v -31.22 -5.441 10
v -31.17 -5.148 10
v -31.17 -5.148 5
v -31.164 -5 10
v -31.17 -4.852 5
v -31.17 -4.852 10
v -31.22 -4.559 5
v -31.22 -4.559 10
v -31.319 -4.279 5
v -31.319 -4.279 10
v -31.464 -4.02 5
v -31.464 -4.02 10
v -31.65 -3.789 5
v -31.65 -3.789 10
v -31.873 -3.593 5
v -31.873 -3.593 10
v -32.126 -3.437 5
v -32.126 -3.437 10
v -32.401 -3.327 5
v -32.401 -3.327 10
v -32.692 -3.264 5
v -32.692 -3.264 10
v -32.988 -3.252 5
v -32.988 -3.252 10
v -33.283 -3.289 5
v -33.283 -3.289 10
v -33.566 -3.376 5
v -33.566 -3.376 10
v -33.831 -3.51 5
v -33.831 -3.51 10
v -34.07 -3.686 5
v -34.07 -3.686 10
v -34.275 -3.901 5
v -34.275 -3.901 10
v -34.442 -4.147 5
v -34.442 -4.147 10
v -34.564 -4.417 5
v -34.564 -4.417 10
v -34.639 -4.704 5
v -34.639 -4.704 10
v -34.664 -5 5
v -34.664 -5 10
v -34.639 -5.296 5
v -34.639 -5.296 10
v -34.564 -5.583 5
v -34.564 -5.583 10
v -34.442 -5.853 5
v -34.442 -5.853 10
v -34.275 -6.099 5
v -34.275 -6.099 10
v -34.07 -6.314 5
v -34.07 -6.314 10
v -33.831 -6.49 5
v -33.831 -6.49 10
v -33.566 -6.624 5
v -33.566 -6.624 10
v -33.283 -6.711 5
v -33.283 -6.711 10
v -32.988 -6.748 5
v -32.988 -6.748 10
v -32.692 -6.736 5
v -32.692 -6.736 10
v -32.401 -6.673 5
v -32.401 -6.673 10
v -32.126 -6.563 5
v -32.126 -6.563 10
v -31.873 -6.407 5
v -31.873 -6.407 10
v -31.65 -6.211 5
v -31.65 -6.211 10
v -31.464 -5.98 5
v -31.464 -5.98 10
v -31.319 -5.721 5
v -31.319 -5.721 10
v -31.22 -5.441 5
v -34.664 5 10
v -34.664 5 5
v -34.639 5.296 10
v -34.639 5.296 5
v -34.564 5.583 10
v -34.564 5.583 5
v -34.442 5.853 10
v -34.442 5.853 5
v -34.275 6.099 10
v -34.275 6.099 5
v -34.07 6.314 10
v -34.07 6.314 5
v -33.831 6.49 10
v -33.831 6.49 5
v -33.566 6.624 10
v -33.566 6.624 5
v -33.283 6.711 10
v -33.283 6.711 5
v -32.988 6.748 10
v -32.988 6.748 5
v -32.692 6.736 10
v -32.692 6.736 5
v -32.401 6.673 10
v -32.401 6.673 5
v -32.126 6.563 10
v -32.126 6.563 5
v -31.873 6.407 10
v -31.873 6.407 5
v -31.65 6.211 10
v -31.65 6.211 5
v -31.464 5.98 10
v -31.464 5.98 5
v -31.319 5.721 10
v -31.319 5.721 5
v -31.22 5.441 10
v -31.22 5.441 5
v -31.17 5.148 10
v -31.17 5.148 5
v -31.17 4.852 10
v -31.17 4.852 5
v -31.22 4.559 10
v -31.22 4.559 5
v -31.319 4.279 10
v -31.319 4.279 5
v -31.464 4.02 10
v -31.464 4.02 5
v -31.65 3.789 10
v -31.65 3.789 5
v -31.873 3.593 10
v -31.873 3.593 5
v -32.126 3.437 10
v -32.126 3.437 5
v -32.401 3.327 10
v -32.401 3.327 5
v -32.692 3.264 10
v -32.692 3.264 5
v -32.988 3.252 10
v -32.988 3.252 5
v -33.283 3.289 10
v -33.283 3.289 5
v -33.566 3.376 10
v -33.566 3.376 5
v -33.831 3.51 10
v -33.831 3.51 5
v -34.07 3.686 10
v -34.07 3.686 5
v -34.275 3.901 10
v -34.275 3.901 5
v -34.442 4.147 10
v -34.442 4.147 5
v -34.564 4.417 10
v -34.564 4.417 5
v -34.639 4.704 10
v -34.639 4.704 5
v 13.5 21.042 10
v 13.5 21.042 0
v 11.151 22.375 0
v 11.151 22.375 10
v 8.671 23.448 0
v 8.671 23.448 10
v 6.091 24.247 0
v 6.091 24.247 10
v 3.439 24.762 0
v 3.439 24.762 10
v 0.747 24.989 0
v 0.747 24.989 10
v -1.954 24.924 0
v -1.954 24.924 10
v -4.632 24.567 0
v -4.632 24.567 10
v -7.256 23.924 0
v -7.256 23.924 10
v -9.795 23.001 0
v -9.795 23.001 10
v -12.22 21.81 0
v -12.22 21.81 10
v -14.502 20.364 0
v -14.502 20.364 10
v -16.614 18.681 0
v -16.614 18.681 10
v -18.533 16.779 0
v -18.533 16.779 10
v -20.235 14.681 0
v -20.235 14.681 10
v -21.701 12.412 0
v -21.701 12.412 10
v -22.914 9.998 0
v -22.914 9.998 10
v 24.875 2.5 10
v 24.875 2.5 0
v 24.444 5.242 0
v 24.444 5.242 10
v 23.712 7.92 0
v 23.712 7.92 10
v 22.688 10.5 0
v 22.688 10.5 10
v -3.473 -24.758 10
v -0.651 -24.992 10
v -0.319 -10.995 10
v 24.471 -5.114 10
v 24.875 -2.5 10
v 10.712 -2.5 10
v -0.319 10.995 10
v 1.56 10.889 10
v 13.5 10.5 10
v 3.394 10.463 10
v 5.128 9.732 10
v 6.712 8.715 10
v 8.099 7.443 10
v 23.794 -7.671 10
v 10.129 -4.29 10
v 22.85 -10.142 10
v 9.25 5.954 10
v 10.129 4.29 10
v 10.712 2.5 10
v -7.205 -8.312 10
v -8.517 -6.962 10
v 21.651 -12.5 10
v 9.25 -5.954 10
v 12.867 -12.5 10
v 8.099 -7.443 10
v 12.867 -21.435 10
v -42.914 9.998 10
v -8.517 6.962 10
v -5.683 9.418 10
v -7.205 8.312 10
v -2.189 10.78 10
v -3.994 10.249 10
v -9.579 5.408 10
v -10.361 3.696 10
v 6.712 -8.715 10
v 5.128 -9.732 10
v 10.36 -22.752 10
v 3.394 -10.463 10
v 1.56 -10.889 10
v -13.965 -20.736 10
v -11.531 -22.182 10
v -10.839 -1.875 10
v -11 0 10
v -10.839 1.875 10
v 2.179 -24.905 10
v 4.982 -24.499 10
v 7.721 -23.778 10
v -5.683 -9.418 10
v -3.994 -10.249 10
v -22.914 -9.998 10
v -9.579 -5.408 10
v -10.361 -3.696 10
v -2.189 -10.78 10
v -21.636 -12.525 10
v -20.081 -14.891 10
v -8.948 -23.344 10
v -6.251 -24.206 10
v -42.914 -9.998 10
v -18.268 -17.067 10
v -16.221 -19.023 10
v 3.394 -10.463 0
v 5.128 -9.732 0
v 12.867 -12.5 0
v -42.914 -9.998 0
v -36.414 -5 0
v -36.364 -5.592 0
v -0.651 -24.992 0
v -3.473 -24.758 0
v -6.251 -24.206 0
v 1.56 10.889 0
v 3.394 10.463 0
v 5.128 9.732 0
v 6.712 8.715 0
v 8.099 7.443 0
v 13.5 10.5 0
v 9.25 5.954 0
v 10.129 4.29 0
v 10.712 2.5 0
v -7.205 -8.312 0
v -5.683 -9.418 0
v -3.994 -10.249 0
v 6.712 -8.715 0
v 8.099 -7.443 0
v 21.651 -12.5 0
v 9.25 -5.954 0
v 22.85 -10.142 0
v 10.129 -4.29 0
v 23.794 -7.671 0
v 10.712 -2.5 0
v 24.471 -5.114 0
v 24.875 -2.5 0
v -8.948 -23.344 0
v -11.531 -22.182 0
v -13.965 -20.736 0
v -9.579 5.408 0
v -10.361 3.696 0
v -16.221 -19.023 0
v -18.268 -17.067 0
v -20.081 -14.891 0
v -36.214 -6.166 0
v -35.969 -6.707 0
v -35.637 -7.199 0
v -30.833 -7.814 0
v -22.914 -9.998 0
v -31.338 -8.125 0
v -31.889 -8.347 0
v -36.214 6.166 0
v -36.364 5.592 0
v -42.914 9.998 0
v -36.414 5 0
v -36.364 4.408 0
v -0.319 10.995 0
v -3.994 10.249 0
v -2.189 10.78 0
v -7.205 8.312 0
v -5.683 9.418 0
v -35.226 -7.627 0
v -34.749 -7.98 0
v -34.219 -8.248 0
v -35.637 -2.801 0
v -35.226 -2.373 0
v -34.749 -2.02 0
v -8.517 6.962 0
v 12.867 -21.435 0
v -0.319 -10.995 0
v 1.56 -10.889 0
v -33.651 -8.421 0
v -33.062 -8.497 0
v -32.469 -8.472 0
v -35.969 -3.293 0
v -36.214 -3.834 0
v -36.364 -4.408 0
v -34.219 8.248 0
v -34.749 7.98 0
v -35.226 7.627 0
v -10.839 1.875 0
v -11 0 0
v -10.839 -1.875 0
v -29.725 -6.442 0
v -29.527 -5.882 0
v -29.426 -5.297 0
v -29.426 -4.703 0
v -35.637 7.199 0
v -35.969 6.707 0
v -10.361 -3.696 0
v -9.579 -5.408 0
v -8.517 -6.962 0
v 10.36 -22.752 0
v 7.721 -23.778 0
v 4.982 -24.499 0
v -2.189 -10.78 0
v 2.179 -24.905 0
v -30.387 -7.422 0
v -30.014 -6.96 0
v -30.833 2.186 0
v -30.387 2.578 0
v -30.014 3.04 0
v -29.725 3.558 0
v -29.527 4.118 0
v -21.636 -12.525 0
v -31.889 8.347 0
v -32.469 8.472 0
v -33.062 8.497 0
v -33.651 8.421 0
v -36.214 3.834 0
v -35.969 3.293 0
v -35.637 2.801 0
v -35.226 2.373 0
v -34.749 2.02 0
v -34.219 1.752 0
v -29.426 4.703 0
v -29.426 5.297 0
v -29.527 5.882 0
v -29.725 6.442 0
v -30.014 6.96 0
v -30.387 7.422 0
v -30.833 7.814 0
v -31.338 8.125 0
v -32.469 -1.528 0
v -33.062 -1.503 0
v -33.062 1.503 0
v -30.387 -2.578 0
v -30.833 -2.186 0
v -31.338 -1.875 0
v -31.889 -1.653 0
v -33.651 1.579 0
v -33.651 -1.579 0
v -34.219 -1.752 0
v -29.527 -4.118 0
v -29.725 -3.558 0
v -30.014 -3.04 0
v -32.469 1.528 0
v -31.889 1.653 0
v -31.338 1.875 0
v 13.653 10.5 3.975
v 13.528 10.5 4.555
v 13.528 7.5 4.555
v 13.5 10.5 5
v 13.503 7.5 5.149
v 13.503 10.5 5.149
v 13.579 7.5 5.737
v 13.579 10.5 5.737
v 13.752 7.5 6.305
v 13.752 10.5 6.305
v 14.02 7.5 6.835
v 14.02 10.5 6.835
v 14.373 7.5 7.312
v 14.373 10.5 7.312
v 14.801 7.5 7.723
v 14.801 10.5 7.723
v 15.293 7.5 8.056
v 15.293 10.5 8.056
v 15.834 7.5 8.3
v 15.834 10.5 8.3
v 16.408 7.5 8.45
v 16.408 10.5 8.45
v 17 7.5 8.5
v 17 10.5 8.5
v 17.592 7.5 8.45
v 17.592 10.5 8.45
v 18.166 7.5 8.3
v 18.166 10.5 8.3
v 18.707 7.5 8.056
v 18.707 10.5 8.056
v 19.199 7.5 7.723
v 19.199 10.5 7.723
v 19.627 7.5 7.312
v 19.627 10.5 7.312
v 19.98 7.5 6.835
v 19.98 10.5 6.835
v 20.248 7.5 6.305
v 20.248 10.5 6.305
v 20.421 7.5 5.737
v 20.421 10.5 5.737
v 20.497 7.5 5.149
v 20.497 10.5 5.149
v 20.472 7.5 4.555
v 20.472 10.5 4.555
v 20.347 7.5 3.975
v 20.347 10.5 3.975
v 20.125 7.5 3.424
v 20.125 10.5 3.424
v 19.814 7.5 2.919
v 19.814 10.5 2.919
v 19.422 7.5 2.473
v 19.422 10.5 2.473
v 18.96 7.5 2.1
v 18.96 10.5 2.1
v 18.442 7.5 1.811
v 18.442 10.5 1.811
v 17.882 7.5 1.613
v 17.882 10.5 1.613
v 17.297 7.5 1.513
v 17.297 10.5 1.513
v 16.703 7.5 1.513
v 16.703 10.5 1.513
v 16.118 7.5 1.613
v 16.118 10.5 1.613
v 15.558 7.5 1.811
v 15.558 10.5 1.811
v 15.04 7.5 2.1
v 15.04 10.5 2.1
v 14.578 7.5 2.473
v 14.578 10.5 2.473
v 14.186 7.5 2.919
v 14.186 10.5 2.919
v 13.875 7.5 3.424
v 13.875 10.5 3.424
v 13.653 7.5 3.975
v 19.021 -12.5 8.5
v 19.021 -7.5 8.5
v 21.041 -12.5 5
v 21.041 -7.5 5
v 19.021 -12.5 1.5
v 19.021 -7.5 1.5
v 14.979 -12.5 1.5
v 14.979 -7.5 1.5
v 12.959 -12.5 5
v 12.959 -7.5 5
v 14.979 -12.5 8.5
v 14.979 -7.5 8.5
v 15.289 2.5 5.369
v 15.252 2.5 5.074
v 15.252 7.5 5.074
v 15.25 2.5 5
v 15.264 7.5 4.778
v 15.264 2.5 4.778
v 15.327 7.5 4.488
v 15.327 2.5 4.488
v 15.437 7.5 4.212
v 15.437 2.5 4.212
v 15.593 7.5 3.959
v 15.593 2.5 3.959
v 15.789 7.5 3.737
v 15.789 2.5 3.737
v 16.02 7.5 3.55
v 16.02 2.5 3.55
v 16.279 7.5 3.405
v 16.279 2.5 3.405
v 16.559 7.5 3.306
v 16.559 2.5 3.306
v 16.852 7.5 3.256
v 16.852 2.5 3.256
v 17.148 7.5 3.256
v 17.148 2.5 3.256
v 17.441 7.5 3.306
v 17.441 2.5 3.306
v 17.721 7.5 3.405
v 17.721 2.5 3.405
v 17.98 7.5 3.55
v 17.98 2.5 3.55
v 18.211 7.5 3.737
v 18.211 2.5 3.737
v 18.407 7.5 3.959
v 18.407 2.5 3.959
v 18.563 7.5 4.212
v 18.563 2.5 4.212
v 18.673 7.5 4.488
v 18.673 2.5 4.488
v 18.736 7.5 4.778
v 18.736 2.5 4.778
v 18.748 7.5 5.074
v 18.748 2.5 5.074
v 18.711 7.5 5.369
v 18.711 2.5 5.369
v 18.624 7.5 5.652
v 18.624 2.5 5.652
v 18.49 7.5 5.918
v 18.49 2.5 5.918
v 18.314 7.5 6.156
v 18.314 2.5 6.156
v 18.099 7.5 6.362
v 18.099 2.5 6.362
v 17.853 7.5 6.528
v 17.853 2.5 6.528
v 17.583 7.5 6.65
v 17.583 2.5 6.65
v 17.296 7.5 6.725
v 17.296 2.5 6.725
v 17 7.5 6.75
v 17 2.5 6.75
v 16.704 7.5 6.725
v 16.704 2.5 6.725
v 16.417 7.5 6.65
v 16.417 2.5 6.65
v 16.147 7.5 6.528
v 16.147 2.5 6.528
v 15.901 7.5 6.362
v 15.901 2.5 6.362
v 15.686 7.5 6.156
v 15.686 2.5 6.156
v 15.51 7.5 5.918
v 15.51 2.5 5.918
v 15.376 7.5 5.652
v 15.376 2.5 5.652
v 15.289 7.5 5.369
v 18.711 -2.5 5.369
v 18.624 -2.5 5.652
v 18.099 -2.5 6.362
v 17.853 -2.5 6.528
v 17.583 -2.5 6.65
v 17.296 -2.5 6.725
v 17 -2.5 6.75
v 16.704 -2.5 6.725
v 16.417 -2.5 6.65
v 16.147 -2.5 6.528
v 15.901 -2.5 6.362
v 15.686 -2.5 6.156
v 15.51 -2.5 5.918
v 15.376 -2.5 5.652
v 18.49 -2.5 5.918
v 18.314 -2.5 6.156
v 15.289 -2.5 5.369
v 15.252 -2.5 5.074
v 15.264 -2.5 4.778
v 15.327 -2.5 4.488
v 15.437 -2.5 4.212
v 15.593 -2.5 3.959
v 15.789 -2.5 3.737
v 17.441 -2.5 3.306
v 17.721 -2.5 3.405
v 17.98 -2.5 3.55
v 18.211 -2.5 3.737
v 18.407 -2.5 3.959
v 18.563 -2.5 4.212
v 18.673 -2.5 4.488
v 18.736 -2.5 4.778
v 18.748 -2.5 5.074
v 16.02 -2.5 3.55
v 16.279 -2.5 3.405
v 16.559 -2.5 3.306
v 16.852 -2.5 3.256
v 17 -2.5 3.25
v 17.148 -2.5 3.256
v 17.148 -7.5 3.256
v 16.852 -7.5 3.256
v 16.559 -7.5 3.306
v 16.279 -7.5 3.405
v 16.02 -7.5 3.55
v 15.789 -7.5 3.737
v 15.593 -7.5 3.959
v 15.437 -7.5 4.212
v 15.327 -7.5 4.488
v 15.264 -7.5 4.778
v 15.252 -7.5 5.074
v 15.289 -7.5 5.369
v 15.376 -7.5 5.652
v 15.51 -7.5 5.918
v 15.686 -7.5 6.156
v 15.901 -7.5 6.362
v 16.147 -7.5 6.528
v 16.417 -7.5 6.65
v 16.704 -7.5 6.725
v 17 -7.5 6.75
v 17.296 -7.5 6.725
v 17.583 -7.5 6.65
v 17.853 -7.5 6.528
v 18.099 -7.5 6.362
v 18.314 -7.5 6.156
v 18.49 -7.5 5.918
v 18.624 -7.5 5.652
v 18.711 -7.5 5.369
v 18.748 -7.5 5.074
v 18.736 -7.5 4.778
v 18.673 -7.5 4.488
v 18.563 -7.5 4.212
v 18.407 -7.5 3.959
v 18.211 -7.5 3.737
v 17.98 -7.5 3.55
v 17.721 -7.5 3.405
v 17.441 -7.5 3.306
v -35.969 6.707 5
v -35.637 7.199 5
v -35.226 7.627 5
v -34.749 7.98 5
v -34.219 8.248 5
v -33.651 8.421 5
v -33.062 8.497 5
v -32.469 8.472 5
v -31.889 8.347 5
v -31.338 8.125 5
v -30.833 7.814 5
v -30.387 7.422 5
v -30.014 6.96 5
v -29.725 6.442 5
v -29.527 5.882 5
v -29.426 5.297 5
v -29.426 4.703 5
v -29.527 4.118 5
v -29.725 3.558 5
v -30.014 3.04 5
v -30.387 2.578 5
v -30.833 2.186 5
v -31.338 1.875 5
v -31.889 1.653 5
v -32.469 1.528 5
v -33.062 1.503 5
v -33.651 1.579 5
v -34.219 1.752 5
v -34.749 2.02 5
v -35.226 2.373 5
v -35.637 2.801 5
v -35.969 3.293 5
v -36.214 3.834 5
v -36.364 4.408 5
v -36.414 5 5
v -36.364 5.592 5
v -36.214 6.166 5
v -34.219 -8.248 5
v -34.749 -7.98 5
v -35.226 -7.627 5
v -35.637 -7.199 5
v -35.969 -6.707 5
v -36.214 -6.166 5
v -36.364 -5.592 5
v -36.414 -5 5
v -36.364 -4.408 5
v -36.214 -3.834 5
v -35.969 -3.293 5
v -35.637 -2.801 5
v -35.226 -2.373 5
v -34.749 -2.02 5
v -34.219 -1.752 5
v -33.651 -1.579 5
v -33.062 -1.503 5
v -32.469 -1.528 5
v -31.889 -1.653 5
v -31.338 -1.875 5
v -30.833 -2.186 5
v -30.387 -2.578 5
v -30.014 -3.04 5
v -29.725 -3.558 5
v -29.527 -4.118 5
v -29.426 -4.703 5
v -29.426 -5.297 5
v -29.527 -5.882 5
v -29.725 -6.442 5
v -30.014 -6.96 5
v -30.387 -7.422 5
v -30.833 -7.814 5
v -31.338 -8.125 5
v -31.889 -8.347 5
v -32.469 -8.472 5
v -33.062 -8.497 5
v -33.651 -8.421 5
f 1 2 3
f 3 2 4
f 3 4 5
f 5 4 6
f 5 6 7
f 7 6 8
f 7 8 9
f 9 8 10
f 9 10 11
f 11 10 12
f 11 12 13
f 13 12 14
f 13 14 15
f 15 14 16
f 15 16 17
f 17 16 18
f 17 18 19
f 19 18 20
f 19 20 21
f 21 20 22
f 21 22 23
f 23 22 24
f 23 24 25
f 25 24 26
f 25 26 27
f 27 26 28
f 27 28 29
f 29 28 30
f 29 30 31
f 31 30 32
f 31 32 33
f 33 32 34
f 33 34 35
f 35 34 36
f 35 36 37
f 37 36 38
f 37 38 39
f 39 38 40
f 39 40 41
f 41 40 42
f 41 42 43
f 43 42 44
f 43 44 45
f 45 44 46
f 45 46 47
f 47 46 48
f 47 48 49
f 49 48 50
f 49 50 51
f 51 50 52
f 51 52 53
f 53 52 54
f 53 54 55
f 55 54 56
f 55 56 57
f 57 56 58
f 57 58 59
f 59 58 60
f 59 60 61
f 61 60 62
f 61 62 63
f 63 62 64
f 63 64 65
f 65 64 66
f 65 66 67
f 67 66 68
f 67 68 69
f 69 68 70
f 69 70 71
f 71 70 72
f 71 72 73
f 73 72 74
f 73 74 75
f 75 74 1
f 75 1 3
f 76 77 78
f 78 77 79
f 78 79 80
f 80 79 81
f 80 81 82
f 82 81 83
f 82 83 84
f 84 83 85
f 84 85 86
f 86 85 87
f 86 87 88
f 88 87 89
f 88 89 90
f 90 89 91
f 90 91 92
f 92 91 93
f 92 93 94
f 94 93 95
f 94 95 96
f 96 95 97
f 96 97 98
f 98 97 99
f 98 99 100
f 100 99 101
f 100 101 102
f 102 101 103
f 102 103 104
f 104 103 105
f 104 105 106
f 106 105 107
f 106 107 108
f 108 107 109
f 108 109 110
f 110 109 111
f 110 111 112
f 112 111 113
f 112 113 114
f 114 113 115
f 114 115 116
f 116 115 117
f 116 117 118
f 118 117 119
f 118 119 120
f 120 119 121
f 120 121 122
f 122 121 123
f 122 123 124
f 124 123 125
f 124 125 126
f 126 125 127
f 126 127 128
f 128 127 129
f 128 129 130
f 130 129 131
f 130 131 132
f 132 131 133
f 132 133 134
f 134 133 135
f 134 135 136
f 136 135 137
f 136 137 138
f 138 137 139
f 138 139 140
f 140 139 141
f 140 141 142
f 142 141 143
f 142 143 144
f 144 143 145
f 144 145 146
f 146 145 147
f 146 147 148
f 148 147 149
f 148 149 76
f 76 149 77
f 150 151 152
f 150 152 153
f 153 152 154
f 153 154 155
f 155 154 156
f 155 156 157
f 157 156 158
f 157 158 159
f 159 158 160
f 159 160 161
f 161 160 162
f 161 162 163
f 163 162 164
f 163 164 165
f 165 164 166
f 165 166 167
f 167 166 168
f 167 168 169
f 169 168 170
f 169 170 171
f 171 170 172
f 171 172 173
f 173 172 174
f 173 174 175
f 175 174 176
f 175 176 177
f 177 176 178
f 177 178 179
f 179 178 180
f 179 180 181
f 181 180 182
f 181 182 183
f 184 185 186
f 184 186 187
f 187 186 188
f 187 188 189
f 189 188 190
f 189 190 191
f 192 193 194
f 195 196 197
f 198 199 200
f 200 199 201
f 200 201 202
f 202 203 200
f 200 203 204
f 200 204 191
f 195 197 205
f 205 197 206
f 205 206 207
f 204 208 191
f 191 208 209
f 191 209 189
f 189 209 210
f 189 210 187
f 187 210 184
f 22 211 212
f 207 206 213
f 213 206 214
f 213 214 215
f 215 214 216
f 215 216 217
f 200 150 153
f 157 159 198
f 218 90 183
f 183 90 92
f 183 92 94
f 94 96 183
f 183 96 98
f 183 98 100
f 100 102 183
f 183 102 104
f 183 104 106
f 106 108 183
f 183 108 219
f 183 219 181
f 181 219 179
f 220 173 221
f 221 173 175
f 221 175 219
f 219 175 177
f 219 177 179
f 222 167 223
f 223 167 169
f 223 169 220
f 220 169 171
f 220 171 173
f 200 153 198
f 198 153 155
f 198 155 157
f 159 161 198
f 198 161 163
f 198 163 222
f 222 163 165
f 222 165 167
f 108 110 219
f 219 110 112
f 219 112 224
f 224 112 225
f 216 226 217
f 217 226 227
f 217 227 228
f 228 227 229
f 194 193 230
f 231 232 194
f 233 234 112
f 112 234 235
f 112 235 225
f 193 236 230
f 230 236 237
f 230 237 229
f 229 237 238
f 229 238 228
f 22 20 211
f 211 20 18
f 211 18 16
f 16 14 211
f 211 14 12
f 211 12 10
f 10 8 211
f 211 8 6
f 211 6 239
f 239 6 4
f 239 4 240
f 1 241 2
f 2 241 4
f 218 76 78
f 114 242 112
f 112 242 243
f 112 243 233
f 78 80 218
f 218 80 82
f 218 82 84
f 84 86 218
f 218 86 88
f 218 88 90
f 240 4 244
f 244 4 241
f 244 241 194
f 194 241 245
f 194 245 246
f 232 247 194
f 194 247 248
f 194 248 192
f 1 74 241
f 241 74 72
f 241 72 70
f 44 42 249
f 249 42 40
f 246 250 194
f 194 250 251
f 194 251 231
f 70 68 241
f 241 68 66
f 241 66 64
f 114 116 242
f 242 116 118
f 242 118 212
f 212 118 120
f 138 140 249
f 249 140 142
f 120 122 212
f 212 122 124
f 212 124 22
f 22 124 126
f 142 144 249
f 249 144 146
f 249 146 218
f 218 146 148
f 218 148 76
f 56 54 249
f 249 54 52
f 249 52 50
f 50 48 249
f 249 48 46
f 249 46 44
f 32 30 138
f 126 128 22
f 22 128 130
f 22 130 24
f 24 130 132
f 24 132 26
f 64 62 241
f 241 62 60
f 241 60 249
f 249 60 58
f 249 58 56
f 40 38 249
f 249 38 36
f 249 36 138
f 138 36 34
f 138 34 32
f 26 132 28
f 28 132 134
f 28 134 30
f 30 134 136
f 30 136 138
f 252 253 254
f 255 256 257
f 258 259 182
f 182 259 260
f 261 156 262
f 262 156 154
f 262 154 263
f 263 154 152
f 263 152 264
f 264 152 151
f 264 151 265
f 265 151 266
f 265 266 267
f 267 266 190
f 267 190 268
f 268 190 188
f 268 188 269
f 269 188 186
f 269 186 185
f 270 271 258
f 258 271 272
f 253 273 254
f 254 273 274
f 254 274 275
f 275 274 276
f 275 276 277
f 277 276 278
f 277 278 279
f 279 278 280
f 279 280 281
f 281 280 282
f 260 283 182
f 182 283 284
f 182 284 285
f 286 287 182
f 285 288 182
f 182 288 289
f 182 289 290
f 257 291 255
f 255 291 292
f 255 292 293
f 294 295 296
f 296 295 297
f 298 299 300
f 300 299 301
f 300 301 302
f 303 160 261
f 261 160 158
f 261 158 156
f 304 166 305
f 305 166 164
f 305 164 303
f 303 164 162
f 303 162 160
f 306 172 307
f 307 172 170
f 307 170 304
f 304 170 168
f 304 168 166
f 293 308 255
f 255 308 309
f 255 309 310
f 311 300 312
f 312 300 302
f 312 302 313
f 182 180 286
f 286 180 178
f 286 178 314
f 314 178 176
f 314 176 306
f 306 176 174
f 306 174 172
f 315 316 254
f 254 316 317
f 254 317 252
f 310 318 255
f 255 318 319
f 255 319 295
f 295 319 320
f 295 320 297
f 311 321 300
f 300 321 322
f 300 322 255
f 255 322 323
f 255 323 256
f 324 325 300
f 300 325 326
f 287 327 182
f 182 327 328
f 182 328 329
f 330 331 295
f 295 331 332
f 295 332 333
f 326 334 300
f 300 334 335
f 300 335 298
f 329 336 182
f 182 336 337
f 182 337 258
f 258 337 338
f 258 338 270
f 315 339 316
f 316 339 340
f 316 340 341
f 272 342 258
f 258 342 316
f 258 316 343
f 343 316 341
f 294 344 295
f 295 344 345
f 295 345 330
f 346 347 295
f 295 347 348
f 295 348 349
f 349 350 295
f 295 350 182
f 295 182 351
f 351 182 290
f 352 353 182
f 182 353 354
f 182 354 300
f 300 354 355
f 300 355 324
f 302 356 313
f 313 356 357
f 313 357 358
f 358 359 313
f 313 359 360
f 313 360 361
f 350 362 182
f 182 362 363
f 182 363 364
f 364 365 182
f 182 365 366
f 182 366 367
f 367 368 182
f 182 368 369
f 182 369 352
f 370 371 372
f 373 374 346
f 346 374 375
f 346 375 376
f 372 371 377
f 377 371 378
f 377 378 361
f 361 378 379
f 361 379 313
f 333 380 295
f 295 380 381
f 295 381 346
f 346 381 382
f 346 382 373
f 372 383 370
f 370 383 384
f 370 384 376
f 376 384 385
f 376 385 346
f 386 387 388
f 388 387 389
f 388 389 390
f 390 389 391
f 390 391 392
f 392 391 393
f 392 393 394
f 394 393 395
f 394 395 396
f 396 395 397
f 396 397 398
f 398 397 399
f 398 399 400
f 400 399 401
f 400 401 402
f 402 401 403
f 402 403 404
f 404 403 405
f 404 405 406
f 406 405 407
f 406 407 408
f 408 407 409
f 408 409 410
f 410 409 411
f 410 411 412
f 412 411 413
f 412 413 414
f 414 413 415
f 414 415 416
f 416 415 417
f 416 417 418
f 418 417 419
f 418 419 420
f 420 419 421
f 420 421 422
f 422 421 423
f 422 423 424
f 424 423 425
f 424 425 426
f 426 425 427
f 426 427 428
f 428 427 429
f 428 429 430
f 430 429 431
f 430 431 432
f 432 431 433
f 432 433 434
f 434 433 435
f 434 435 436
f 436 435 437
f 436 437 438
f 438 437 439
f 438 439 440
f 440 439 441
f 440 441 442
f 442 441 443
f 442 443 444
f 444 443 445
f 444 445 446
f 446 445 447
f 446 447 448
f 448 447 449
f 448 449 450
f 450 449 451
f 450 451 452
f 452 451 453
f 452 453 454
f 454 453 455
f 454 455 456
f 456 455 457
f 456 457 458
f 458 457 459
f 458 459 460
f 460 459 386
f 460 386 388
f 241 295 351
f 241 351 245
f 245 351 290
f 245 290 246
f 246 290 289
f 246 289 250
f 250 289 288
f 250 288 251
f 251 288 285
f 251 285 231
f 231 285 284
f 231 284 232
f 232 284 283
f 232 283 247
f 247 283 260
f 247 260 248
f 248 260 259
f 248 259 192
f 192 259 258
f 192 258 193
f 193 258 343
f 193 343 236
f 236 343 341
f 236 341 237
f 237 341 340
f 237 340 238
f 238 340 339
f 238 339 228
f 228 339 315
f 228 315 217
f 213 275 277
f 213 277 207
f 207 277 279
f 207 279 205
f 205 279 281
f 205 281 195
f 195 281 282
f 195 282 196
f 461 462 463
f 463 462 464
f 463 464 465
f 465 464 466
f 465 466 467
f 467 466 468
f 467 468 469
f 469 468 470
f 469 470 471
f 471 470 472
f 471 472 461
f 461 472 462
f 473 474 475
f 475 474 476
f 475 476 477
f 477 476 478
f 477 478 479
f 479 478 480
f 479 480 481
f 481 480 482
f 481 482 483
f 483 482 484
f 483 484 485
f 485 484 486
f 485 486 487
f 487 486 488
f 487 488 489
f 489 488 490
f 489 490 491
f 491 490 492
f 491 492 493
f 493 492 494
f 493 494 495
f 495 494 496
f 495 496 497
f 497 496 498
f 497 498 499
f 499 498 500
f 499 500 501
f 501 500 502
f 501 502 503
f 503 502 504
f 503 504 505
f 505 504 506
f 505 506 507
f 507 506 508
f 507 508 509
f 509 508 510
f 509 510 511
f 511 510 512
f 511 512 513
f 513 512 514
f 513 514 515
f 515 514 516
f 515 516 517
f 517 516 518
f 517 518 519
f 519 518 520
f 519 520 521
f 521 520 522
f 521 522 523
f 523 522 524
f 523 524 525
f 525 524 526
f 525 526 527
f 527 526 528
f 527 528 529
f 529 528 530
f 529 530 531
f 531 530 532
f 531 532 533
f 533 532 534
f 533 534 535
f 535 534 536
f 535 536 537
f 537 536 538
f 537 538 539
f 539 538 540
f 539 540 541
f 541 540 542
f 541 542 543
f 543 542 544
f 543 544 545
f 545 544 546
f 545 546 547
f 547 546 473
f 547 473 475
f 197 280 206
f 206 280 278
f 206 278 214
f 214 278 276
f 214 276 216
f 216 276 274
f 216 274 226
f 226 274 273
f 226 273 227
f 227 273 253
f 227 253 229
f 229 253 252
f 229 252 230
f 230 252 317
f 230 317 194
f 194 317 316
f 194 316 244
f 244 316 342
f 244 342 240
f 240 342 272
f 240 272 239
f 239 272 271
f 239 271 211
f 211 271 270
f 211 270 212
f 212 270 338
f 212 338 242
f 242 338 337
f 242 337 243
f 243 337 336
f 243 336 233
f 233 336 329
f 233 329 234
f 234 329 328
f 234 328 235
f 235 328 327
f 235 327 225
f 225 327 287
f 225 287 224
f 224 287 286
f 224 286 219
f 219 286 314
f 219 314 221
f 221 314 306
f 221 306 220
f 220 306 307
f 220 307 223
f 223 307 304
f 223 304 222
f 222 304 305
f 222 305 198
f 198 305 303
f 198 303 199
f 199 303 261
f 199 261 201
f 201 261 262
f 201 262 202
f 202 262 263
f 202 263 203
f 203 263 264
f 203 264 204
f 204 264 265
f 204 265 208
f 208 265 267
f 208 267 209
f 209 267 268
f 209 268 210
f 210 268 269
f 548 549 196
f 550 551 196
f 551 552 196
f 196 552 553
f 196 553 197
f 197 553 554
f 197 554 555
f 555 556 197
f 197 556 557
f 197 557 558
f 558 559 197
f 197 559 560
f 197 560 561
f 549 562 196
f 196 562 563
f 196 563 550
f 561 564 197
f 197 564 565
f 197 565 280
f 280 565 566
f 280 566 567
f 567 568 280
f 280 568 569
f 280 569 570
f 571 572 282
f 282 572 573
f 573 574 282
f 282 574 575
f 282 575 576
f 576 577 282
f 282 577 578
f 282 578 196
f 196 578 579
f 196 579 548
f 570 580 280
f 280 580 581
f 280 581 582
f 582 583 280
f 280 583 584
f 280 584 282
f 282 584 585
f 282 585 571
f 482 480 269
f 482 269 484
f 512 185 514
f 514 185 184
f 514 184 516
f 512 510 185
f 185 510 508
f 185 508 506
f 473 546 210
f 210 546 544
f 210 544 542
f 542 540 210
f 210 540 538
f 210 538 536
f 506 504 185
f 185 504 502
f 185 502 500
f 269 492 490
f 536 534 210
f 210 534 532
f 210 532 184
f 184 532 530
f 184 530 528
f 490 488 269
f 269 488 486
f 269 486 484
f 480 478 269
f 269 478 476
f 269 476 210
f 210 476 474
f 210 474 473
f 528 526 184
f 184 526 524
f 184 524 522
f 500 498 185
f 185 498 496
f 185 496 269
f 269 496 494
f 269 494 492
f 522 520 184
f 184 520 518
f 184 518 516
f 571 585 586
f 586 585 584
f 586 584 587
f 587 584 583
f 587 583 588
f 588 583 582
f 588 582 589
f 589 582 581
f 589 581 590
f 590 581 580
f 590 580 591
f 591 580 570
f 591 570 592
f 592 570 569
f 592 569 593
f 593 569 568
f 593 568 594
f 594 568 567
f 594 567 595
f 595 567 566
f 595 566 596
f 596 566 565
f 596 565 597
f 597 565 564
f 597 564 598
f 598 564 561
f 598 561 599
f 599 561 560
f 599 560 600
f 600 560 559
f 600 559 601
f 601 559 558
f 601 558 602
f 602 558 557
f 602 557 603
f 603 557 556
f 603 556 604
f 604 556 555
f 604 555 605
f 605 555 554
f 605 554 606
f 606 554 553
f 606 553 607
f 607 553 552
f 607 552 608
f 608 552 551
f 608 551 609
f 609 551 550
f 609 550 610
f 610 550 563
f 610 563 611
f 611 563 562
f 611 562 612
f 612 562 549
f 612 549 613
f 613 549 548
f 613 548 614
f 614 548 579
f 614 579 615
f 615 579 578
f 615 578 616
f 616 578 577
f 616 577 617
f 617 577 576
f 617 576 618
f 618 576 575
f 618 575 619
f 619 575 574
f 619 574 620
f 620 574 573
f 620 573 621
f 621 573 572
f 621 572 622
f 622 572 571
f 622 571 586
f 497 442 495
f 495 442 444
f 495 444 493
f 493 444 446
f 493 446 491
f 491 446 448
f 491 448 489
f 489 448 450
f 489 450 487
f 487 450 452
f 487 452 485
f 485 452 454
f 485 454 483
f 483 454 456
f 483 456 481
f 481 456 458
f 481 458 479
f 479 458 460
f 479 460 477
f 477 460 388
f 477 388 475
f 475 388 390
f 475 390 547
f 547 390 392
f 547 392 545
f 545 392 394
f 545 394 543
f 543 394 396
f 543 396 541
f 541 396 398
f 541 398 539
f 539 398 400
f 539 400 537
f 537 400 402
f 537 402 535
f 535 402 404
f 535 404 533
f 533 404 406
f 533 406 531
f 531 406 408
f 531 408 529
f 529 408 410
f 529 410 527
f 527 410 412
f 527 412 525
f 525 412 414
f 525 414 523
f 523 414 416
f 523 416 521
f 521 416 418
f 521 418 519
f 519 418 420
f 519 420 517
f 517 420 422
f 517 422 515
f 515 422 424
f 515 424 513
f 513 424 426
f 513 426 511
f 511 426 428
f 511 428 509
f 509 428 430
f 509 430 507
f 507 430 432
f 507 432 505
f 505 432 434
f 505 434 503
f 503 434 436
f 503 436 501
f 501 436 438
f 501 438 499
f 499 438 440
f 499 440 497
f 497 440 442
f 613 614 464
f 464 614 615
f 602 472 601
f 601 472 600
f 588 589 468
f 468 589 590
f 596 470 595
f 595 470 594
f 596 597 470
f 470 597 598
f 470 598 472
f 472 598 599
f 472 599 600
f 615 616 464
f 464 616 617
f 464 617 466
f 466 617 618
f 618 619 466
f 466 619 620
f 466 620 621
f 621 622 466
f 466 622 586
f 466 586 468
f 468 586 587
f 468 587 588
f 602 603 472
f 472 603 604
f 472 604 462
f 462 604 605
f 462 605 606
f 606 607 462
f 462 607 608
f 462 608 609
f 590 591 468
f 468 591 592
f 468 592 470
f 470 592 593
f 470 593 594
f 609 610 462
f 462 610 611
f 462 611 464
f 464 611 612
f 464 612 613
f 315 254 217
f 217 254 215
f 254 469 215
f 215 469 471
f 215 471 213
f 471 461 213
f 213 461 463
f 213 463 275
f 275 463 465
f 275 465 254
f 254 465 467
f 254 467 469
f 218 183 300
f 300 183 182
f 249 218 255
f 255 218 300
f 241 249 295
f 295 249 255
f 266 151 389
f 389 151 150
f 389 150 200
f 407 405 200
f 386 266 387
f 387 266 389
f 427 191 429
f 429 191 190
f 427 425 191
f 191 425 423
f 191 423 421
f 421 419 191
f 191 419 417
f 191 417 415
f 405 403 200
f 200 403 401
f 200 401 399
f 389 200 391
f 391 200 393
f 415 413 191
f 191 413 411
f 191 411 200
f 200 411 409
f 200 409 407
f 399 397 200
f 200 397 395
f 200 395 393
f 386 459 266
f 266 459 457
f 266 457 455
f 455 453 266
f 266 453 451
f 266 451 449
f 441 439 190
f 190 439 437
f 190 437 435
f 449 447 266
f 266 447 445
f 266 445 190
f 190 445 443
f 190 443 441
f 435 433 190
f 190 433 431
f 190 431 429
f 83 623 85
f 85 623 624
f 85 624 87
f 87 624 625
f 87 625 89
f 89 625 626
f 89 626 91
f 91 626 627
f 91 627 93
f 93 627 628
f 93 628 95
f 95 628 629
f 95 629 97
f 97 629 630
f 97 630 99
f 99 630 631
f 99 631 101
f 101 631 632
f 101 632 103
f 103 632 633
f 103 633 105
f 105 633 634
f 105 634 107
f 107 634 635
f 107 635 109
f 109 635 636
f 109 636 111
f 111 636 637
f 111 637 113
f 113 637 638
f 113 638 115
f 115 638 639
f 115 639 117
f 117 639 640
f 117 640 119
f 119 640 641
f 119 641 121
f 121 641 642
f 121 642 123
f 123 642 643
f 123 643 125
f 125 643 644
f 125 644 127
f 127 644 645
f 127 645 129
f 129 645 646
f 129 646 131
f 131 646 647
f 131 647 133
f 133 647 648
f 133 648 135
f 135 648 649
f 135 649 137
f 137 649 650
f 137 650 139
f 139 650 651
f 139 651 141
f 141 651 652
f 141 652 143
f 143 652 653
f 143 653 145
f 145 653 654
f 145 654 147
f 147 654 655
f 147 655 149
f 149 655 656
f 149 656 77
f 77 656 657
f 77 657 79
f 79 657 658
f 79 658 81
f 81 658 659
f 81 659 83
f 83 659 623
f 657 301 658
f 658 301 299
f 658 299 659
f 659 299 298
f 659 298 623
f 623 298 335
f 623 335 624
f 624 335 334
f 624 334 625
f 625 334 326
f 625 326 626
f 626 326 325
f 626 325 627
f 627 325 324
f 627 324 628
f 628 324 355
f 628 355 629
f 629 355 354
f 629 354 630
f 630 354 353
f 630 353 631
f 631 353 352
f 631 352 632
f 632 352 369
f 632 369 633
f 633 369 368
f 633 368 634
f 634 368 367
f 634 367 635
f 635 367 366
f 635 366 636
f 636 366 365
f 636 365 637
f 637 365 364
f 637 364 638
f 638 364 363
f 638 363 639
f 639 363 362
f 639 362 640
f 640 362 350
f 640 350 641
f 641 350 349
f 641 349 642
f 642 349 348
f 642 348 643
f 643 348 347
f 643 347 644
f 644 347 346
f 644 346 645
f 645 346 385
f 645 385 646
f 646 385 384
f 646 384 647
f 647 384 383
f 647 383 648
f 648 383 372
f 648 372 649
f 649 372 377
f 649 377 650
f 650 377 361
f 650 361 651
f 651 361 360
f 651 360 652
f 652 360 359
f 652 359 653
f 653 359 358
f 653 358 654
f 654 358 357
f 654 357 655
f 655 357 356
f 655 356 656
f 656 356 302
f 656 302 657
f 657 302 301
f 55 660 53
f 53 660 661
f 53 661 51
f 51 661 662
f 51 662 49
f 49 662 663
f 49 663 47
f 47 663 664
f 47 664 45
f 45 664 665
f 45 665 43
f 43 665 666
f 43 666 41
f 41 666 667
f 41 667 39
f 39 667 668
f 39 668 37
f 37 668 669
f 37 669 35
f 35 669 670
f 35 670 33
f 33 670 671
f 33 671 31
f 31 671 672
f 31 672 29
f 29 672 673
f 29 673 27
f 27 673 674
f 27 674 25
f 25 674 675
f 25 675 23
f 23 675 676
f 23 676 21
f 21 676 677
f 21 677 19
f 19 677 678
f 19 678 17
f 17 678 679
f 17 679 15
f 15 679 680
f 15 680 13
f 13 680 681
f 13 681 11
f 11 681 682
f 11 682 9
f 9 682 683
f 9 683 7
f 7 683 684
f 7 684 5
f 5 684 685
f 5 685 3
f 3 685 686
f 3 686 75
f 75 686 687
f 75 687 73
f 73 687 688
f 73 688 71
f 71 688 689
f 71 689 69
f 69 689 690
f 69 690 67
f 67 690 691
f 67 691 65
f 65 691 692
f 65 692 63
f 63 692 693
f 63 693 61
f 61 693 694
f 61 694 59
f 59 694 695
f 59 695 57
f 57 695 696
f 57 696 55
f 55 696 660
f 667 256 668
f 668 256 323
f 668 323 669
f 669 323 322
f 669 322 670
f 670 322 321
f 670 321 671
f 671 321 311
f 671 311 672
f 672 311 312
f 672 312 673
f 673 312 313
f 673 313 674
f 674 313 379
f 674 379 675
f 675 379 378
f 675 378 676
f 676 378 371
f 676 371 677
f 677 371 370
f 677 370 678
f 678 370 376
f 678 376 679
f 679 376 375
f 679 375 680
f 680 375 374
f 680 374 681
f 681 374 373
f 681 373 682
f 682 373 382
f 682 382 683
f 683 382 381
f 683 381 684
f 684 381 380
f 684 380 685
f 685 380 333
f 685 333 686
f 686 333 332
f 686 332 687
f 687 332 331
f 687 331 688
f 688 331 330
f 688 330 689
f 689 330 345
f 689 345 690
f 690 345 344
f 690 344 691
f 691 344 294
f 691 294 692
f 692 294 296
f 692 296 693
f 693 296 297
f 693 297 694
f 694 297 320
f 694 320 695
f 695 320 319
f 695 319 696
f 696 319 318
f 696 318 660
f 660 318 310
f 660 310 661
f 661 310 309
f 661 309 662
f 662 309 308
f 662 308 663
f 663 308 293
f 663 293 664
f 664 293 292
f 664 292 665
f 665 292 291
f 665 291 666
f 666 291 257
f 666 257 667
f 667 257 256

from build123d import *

# Parameters (mm, degrees)
SKETCH1_R                = 25
SKETCH1_R_2              = 11
BOSS_EXTRUDE1_DEPTH      = 10
CUT_EXTRUDE1_DEPTH       = 10
SKETCH5_R                = 1.75
CUT_EXTRUDE4_DEPTH       = 28.5
CUT_EXTRUDE4_DEPTH_BACK  = 23.5
CUT_EXTRUDE5_START       = 30
SKETCH6_R                = 3.5
CUT_EXTRUDE5_DEPTH       = 20
CUT_EXTRUDE6_START       = -30
CUT_EXTRUDE6_DEPTH       = 25
CUT_EXTRUDE8_START       = 20
CUT_EXTRUDE8_DEPTH       = 15
SKETCH9_W                = 20
SKETCH9_H                = 19.995459106
SKETCH9_R                = 1.75
BOSS_EXTRUDE2_DEPTH      = 10
CUT_EXTRUDE10_START      = 20
CUT_EXTRUDE10_DEPTH      = 1
CUT_EXTRUDE10_DEPTH_BACK = 17
SKETCH13_R               = 3.5
CUT_EXTRUDE11_DEPTH      = 5


with BuildPart() as part:
    # Sketch1 → Boss-Extrude1 (new body)
    with BuildSketch(Plane.XY):
        Circle(SKETCH1_R)
        Circle(SKETCH1_R_2, mode=Mode.SUBTRACT)
    extrude(amount=BOSS_EXTRUDE1_DEPTH)

    # Sketch2 → Cut-Extrude1 (cut)
    with BuildSketch(Plane.XY.offset(10)):
        Polygon((25, 0), (25, 2.5), (0, 2.5), (0, 0), (0, -2.5), (25, -2.5), align=None)
    extrude(amount=-CUT_EXTRUDE1_DEPTH, mode=Mode.SUBTRACT)

    # Sketch5 → Cut-Extrude4 (cut, two sides)
    with BuildSketch(Plane(origin=(0, -2.5, 0), x_dir=(1, 0, 0), z_dir=(0, 1, 0))) as cut_extrude4_sk:
        with Locations((17, -5)):
            Circle(SKETCH5_R)
    extrude(amount=CUT_EXTRUDE4_DEPTH, mode=Mode.SUBTRACT)
    extrude(cut_extrude4_sk.sketch, amount=-CUT_EXTRUDE4_DEPTH_BACK, mode=Mode.SUBTRACT)

    # Sketch6 → Cut-Extrude5 (cut)
    with BuildSketch(Plane(origin=(0, -2.5, 0), x_dir=(1, 0, 0), z_dir=(0, 1, 0)).offset(CUT_EXTRUDE5_START)):
        with Locations((17, -5)):
            Circle(SKETCH6_R)
    extrude(amount=-CUT_EXTRUDE5_DEPTH, mode=Mode.SUBTRACT)

    # Sketch7 → Cut-Extrude6 (cut)
    with BuildSketch(Plane(origin=(0, -2.5, 0), x_dir=(1, 0, 0), z_dir=(0, 1, 0)).offset(CUT_EXTRUDE6_START)):
        Polygon((21.041451884, -5), (19.020725942, -1.5), (14.979274058, -1.5), (12.958548116, -5), (14.979274058, -8.5), (19.020725942, -8.5), align=None)
    extrude(amount=CUT_EXTRUDE6_DEPTH, mode=Mode.SUBTRACT)

    # Sketch8 → Cut-Extrude8 (cut)
    with BuildSketch(Plane.XZ.offset(7.5).offset(CUT_EXTRUDE8_START)):
        Polygon((12.866790083, 5), (12.866790083, -1.917841475), (27.200285801, -1.917841475), (26.866413077, 13.440303847), (13.08223917, 14.012657089), (12.866790083, 14.617290025), align=None)
    extrude(amount=-CUT_EXTRUDE8_DEPTH, mode=Mode.SUBTRACT)

    # Sketch9 → Boss-Extrude2 (add)
    with BuildSketch(Plane(origin=(0, 0, 0), x_dir=(-1, 0, 0), z_dir=(0, 0, -1))):
        with Locations((32.913869245, 0)):
            Rectangle(SKETCH9_W, SKETCH9_H)
        with Locations((32.913869245, 5)):
            Circle(SKETCH9_R, mode=Mode.SUBTRACT)
        with Locations((32.913869245, -5)):
            Circle(SKETCH9_R, mode=Mode.SUBTRACT)
    extrude(amount=-BOSS_EXTRUDE2_DEPTH)

    # Sketch12 → Cut-Extrude10 (cut, two sides)
    with BuildSketch(Plane(origin=(0, 7.5, 0), x_dir=(1, 0, 0), z_dir=(0, 1, 0)).offset(CUT_EXTRUDE10_START)) as cut_extrude10_sk:
        Polygon((13.5, -5), (13.5, -13.927186896), (27.549462707, -13.927186896), (27.549462707, 2.179730433), (13.5, 2.179730433), align=None)
    extrude(amount=CUT_EXTRUDE10_DEPTH, mode=Mode.SUBTRACT)
    extrude(cut_extrude10_sk.sketch, amount=-CUT_EXTRUDE10_DEPTH_BACK, mode=Mode.SUBTRACT)

    # Sketch13 → Cut-Extrude11 (cut)
    with BuildSketch(Plane(origin=(0, 0, 0), x_dir=(-1, 0, 0), z_dir=(0, 0, -1))):
        with Locations((32.913869245, 5)):
            Circle(SKETCH13_R)
        with Locations((32.913869245, -5)):
            Circle(SKETCH13_R)
    extrude(amount=-CUT_EXTRUDE11_DEPTH, mode=Mode.SUBTRACT)


solid = part.part
